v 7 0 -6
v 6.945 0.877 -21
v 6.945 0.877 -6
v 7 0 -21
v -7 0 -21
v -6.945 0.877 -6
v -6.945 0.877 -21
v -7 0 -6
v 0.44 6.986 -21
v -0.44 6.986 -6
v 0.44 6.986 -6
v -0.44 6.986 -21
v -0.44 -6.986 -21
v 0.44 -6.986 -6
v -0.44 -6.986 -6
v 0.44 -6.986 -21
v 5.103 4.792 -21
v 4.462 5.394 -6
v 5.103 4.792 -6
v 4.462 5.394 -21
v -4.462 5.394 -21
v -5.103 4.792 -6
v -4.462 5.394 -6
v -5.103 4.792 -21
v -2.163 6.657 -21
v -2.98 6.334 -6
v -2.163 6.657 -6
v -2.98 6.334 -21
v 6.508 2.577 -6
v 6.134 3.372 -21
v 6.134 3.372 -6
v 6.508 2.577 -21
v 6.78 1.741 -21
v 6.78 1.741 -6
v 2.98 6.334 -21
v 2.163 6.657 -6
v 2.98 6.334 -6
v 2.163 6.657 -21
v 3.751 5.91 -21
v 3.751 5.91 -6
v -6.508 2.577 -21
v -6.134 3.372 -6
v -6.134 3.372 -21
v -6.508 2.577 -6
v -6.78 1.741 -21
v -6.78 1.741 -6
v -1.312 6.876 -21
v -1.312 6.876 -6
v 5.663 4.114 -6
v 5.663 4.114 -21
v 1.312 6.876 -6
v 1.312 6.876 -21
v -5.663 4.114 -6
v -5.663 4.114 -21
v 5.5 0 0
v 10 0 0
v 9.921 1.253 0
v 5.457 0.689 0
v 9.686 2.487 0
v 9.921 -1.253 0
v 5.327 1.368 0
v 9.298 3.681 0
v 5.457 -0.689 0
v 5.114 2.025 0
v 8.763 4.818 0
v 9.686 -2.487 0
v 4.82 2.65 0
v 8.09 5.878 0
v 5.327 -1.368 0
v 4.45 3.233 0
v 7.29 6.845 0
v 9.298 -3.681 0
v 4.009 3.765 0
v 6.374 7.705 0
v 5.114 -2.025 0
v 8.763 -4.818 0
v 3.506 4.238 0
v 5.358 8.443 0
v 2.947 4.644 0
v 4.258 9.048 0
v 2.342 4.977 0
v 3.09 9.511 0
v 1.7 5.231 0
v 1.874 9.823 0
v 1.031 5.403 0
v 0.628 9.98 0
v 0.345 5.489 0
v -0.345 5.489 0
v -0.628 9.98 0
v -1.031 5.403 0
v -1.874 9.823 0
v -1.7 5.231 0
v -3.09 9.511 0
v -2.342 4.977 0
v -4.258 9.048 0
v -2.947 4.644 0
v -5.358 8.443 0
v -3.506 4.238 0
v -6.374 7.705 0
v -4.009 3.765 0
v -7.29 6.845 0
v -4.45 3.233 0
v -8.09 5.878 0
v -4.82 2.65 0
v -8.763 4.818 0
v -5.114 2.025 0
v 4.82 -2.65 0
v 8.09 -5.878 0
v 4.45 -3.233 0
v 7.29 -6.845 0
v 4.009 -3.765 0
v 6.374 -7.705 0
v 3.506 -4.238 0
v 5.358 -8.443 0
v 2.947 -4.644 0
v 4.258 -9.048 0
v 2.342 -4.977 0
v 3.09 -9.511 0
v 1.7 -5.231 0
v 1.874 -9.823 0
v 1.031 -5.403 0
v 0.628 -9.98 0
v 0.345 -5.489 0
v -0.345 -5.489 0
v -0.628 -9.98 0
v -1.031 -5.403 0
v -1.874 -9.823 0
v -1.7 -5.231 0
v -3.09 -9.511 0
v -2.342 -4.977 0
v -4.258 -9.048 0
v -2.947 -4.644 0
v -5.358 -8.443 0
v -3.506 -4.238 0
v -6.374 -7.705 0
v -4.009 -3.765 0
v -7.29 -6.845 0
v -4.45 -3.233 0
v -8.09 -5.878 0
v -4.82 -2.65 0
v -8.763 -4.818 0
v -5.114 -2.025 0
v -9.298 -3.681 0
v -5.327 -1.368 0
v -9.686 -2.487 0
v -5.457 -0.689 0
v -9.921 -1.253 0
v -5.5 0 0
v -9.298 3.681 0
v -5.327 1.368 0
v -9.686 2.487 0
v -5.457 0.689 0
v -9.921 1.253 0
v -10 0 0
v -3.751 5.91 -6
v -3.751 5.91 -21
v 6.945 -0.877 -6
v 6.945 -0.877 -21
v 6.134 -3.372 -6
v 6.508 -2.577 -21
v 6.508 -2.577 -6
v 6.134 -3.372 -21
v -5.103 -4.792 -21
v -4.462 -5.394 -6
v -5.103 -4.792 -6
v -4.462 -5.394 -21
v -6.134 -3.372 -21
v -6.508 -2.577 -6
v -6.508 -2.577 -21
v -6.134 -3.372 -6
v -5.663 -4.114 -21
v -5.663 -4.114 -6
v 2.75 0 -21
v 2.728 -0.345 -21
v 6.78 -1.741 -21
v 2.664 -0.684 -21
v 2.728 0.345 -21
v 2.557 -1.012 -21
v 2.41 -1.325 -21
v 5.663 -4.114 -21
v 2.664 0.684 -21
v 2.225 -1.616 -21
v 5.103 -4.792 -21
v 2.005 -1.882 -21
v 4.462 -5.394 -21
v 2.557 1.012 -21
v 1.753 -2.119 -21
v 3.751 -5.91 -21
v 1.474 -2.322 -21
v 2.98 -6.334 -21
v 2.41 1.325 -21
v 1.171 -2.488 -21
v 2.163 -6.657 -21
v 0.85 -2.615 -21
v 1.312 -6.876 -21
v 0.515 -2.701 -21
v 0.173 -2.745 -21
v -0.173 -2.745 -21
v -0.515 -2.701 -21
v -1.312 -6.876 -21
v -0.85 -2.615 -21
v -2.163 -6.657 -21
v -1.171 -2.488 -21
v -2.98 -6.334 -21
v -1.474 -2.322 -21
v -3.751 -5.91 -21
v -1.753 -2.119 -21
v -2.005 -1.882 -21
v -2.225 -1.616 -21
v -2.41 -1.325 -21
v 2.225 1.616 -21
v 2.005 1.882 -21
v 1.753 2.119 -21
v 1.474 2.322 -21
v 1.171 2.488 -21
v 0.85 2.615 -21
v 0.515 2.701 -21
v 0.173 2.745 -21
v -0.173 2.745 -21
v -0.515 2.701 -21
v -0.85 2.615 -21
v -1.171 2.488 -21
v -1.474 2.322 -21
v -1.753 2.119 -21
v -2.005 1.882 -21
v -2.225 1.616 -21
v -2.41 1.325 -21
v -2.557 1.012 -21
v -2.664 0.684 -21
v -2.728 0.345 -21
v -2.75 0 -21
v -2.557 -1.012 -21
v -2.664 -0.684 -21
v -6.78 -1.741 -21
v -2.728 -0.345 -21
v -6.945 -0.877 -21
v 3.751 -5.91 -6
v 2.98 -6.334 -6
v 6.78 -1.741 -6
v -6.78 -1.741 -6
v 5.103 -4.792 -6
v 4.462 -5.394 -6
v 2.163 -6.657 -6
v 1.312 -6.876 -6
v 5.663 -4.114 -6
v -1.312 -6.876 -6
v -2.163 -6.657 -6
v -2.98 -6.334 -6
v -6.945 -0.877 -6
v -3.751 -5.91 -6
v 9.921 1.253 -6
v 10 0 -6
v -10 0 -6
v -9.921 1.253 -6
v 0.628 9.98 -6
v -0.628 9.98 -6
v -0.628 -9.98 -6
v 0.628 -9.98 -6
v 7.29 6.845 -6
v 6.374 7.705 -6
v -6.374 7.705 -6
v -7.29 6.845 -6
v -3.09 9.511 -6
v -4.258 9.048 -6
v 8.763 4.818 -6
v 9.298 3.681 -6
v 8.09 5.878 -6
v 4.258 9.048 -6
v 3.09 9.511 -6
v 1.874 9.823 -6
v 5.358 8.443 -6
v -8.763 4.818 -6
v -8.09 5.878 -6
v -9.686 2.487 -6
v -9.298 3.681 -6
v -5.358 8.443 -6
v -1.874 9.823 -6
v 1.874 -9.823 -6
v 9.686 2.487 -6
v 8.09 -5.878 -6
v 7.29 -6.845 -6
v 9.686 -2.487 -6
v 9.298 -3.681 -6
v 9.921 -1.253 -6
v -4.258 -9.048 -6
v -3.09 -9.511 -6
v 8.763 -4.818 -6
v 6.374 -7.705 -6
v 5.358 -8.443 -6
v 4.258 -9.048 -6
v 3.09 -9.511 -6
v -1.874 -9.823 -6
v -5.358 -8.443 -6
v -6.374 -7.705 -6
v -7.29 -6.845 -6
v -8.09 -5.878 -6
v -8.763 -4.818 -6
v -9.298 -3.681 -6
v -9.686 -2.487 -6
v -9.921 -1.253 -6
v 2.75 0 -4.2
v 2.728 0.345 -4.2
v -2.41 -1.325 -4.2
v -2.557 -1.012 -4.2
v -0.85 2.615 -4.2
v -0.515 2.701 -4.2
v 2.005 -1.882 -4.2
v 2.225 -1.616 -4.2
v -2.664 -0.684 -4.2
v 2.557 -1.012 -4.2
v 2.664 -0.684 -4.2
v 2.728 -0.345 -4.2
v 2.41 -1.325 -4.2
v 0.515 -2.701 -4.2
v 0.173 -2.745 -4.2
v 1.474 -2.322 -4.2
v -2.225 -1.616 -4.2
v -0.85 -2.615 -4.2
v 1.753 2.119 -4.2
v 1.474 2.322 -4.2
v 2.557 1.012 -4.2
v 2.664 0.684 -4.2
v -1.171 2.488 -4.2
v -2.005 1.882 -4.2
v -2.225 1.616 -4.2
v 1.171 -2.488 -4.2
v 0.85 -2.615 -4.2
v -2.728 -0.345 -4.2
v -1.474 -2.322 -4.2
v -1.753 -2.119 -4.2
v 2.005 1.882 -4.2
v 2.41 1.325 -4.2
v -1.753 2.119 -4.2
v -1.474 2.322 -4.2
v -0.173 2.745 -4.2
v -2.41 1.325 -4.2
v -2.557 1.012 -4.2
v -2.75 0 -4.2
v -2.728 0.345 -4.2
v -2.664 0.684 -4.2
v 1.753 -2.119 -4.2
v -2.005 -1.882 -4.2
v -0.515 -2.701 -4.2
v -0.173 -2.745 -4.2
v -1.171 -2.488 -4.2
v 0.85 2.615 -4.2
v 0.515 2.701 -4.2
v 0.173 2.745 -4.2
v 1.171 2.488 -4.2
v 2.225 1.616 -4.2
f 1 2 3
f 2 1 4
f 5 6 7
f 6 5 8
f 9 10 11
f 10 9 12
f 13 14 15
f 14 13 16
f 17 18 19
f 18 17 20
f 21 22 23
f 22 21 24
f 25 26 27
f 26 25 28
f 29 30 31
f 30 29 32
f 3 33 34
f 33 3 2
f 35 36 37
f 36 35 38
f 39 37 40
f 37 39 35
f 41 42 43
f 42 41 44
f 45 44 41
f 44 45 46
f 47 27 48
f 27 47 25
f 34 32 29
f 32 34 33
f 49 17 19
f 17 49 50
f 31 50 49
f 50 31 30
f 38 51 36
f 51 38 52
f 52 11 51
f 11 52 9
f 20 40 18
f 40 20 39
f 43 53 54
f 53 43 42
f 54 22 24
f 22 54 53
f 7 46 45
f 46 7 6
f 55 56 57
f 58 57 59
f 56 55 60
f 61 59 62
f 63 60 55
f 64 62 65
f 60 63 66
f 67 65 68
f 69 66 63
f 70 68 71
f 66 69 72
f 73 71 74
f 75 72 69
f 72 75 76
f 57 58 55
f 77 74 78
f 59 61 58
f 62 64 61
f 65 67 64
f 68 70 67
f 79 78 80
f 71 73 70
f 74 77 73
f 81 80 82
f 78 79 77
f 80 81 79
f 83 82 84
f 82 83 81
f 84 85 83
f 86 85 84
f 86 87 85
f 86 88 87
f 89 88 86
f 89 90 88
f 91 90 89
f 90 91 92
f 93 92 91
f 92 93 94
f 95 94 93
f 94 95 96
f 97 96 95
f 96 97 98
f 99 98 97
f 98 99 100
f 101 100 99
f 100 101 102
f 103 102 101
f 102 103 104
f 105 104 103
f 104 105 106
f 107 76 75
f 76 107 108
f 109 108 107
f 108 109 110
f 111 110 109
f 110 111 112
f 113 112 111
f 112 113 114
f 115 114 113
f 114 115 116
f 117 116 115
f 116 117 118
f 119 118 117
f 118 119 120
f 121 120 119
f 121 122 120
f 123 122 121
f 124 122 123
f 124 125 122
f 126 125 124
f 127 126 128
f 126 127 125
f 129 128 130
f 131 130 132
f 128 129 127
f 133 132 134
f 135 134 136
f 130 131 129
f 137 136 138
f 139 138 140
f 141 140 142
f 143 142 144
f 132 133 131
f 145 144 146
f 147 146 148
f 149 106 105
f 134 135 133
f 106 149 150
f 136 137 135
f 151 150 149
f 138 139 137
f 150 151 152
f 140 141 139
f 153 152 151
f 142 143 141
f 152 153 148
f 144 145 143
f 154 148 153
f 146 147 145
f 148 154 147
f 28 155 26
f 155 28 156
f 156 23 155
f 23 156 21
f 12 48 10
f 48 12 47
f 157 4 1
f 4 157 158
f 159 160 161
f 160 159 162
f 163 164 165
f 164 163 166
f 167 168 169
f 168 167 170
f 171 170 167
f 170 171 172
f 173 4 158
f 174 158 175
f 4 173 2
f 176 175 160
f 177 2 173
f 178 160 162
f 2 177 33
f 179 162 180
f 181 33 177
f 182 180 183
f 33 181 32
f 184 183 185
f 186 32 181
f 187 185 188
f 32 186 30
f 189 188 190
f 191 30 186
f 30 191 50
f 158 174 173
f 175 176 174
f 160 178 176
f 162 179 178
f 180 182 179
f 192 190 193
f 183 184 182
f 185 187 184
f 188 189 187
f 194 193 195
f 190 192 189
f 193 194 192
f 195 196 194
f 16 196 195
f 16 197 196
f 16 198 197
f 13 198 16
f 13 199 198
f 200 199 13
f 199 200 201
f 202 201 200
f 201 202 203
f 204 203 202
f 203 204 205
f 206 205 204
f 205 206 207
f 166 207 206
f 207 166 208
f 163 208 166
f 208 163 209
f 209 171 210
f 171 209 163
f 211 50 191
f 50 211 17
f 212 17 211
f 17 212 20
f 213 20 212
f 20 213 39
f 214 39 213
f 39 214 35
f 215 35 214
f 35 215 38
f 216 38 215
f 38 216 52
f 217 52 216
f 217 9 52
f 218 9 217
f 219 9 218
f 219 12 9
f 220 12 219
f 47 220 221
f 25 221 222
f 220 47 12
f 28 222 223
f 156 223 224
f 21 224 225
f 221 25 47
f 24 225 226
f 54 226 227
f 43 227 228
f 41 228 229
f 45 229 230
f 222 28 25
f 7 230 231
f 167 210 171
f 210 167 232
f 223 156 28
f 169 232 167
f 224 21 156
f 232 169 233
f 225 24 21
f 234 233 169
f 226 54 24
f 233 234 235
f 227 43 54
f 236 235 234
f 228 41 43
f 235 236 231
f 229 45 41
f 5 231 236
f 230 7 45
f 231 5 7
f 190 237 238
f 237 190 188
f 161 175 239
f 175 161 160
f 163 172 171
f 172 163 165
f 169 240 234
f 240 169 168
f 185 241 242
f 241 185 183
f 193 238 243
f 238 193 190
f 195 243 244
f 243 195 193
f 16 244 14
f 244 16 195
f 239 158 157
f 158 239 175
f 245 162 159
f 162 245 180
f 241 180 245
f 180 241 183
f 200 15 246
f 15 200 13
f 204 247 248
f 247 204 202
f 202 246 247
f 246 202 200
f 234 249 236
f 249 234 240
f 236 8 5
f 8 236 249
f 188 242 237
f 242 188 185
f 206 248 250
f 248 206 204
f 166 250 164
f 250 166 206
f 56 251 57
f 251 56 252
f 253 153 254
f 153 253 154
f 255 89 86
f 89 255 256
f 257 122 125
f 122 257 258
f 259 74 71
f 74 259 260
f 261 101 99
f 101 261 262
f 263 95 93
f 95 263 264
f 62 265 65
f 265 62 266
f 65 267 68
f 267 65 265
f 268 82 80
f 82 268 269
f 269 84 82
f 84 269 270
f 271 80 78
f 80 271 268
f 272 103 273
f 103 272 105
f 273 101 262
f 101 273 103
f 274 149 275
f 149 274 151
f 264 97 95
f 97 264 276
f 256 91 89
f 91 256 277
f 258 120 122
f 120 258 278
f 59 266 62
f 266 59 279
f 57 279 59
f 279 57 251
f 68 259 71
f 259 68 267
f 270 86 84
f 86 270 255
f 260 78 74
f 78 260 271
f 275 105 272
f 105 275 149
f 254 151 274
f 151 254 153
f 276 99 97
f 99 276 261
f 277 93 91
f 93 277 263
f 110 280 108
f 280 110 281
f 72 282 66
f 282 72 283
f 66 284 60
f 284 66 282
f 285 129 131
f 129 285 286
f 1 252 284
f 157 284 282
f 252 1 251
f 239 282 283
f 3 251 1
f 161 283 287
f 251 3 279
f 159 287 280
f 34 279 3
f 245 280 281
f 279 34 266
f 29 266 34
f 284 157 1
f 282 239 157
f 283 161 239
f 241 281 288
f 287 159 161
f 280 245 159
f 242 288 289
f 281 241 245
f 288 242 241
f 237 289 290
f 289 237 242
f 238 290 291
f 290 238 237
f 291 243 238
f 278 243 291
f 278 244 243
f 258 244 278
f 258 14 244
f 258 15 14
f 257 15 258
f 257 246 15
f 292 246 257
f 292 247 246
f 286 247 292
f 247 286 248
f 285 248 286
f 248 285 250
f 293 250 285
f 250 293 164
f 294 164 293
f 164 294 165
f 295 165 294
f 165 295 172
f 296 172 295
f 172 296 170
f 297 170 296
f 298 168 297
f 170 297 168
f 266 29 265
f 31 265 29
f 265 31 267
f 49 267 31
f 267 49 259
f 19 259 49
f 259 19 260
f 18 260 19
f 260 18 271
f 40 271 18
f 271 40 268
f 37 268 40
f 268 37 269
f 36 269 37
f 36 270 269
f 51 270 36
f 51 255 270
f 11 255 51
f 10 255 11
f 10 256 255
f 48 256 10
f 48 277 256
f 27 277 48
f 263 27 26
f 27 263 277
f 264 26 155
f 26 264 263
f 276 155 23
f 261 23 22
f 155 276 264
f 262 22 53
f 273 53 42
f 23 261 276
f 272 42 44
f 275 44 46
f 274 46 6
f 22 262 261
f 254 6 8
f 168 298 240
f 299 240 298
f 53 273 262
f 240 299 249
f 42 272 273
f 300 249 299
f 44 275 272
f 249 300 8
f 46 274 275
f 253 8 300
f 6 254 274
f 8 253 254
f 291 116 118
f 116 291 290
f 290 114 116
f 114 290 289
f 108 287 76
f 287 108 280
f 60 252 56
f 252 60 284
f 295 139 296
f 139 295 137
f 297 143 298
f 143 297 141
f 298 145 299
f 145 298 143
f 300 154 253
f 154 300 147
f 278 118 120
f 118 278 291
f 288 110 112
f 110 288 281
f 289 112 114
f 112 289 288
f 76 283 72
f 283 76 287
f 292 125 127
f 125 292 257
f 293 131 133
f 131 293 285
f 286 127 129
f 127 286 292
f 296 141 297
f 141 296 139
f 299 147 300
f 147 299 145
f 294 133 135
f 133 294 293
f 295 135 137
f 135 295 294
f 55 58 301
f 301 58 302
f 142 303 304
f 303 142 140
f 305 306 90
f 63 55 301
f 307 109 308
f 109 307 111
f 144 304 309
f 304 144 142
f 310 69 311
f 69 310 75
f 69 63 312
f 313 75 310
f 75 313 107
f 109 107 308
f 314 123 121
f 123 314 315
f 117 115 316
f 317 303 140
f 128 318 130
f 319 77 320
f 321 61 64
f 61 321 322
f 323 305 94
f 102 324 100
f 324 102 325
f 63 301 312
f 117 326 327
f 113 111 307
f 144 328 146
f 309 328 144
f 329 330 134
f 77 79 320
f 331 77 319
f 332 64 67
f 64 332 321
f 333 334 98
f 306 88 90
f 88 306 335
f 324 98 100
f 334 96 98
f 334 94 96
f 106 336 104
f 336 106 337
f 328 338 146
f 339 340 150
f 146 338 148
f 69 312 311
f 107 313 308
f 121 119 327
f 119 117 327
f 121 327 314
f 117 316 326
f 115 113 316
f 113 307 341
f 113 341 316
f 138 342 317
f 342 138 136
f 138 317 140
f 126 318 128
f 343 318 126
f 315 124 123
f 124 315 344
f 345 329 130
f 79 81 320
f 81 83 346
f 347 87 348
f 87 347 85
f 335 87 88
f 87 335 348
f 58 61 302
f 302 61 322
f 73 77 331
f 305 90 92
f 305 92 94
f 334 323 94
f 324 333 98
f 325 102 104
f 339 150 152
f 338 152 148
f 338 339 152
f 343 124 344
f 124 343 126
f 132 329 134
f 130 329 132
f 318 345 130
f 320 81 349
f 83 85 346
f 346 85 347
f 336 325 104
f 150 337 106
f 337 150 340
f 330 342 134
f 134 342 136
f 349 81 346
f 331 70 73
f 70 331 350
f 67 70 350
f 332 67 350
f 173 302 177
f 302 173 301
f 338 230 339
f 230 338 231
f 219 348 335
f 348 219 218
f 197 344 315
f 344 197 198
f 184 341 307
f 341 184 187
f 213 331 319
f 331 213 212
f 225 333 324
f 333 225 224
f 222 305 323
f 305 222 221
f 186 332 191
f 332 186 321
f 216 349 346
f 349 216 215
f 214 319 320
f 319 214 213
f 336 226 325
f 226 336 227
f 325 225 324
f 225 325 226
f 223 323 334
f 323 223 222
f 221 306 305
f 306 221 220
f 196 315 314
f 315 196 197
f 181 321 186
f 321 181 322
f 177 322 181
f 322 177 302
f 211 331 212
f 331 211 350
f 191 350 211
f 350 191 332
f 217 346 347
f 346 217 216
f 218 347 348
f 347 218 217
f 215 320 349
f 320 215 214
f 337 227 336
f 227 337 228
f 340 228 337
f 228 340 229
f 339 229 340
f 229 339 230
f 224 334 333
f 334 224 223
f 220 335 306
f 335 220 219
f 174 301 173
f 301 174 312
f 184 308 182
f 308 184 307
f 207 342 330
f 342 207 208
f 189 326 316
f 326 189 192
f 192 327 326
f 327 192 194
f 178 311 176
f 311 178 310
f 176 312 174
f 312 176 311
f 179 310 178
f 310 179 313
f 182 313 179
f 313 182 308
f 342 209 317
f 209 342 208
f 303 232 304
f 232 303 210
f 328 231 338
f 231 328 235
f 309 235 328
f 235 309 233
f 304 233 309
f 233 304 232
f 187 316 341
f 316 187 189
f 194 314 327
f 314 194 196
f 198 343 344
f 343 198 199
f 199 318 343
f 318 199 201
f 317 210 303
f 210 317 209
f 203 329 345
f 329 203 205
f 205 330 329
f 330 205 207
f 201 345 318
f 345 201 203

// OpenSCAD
$fn = 50;


difference() {
	union() {
		translate(v = [0, 0, -21.0000000000]) {
			cylinder(h = 21, r = 7.0000000000);
		}
		translate(v = [0, 0, -6.0000000000]) {
			cylinder(h = 6, r = 10.0000000000);
		}
	}
	union() {
		translate(v = [0, 0, 0]) {
			rotate(a = [0, 0, 0]) {
				difference() {
					union() {
						#translate(v = [0, 0, -21.0000000000]) {
							cylinder(h = 21, r = 2.2500000000);
						}
						#translate(v = [0, 0, -4.2000000000]) {
							cylinder(h = 4.2000000000, r1 = 2.7500000000, r2 = 5.5000000000);
						}
						#translate(v = [0, 0, -21.0000000000]) {
							cylinder(h = 21, r = 2.7500000000);
						}
						#translate(v = [0, 0, -21.0000000000]) {
							cylinder(h = 21, r = 2.2500000000);
						}
					}
					union();
				}
			}
		}
	}
}
